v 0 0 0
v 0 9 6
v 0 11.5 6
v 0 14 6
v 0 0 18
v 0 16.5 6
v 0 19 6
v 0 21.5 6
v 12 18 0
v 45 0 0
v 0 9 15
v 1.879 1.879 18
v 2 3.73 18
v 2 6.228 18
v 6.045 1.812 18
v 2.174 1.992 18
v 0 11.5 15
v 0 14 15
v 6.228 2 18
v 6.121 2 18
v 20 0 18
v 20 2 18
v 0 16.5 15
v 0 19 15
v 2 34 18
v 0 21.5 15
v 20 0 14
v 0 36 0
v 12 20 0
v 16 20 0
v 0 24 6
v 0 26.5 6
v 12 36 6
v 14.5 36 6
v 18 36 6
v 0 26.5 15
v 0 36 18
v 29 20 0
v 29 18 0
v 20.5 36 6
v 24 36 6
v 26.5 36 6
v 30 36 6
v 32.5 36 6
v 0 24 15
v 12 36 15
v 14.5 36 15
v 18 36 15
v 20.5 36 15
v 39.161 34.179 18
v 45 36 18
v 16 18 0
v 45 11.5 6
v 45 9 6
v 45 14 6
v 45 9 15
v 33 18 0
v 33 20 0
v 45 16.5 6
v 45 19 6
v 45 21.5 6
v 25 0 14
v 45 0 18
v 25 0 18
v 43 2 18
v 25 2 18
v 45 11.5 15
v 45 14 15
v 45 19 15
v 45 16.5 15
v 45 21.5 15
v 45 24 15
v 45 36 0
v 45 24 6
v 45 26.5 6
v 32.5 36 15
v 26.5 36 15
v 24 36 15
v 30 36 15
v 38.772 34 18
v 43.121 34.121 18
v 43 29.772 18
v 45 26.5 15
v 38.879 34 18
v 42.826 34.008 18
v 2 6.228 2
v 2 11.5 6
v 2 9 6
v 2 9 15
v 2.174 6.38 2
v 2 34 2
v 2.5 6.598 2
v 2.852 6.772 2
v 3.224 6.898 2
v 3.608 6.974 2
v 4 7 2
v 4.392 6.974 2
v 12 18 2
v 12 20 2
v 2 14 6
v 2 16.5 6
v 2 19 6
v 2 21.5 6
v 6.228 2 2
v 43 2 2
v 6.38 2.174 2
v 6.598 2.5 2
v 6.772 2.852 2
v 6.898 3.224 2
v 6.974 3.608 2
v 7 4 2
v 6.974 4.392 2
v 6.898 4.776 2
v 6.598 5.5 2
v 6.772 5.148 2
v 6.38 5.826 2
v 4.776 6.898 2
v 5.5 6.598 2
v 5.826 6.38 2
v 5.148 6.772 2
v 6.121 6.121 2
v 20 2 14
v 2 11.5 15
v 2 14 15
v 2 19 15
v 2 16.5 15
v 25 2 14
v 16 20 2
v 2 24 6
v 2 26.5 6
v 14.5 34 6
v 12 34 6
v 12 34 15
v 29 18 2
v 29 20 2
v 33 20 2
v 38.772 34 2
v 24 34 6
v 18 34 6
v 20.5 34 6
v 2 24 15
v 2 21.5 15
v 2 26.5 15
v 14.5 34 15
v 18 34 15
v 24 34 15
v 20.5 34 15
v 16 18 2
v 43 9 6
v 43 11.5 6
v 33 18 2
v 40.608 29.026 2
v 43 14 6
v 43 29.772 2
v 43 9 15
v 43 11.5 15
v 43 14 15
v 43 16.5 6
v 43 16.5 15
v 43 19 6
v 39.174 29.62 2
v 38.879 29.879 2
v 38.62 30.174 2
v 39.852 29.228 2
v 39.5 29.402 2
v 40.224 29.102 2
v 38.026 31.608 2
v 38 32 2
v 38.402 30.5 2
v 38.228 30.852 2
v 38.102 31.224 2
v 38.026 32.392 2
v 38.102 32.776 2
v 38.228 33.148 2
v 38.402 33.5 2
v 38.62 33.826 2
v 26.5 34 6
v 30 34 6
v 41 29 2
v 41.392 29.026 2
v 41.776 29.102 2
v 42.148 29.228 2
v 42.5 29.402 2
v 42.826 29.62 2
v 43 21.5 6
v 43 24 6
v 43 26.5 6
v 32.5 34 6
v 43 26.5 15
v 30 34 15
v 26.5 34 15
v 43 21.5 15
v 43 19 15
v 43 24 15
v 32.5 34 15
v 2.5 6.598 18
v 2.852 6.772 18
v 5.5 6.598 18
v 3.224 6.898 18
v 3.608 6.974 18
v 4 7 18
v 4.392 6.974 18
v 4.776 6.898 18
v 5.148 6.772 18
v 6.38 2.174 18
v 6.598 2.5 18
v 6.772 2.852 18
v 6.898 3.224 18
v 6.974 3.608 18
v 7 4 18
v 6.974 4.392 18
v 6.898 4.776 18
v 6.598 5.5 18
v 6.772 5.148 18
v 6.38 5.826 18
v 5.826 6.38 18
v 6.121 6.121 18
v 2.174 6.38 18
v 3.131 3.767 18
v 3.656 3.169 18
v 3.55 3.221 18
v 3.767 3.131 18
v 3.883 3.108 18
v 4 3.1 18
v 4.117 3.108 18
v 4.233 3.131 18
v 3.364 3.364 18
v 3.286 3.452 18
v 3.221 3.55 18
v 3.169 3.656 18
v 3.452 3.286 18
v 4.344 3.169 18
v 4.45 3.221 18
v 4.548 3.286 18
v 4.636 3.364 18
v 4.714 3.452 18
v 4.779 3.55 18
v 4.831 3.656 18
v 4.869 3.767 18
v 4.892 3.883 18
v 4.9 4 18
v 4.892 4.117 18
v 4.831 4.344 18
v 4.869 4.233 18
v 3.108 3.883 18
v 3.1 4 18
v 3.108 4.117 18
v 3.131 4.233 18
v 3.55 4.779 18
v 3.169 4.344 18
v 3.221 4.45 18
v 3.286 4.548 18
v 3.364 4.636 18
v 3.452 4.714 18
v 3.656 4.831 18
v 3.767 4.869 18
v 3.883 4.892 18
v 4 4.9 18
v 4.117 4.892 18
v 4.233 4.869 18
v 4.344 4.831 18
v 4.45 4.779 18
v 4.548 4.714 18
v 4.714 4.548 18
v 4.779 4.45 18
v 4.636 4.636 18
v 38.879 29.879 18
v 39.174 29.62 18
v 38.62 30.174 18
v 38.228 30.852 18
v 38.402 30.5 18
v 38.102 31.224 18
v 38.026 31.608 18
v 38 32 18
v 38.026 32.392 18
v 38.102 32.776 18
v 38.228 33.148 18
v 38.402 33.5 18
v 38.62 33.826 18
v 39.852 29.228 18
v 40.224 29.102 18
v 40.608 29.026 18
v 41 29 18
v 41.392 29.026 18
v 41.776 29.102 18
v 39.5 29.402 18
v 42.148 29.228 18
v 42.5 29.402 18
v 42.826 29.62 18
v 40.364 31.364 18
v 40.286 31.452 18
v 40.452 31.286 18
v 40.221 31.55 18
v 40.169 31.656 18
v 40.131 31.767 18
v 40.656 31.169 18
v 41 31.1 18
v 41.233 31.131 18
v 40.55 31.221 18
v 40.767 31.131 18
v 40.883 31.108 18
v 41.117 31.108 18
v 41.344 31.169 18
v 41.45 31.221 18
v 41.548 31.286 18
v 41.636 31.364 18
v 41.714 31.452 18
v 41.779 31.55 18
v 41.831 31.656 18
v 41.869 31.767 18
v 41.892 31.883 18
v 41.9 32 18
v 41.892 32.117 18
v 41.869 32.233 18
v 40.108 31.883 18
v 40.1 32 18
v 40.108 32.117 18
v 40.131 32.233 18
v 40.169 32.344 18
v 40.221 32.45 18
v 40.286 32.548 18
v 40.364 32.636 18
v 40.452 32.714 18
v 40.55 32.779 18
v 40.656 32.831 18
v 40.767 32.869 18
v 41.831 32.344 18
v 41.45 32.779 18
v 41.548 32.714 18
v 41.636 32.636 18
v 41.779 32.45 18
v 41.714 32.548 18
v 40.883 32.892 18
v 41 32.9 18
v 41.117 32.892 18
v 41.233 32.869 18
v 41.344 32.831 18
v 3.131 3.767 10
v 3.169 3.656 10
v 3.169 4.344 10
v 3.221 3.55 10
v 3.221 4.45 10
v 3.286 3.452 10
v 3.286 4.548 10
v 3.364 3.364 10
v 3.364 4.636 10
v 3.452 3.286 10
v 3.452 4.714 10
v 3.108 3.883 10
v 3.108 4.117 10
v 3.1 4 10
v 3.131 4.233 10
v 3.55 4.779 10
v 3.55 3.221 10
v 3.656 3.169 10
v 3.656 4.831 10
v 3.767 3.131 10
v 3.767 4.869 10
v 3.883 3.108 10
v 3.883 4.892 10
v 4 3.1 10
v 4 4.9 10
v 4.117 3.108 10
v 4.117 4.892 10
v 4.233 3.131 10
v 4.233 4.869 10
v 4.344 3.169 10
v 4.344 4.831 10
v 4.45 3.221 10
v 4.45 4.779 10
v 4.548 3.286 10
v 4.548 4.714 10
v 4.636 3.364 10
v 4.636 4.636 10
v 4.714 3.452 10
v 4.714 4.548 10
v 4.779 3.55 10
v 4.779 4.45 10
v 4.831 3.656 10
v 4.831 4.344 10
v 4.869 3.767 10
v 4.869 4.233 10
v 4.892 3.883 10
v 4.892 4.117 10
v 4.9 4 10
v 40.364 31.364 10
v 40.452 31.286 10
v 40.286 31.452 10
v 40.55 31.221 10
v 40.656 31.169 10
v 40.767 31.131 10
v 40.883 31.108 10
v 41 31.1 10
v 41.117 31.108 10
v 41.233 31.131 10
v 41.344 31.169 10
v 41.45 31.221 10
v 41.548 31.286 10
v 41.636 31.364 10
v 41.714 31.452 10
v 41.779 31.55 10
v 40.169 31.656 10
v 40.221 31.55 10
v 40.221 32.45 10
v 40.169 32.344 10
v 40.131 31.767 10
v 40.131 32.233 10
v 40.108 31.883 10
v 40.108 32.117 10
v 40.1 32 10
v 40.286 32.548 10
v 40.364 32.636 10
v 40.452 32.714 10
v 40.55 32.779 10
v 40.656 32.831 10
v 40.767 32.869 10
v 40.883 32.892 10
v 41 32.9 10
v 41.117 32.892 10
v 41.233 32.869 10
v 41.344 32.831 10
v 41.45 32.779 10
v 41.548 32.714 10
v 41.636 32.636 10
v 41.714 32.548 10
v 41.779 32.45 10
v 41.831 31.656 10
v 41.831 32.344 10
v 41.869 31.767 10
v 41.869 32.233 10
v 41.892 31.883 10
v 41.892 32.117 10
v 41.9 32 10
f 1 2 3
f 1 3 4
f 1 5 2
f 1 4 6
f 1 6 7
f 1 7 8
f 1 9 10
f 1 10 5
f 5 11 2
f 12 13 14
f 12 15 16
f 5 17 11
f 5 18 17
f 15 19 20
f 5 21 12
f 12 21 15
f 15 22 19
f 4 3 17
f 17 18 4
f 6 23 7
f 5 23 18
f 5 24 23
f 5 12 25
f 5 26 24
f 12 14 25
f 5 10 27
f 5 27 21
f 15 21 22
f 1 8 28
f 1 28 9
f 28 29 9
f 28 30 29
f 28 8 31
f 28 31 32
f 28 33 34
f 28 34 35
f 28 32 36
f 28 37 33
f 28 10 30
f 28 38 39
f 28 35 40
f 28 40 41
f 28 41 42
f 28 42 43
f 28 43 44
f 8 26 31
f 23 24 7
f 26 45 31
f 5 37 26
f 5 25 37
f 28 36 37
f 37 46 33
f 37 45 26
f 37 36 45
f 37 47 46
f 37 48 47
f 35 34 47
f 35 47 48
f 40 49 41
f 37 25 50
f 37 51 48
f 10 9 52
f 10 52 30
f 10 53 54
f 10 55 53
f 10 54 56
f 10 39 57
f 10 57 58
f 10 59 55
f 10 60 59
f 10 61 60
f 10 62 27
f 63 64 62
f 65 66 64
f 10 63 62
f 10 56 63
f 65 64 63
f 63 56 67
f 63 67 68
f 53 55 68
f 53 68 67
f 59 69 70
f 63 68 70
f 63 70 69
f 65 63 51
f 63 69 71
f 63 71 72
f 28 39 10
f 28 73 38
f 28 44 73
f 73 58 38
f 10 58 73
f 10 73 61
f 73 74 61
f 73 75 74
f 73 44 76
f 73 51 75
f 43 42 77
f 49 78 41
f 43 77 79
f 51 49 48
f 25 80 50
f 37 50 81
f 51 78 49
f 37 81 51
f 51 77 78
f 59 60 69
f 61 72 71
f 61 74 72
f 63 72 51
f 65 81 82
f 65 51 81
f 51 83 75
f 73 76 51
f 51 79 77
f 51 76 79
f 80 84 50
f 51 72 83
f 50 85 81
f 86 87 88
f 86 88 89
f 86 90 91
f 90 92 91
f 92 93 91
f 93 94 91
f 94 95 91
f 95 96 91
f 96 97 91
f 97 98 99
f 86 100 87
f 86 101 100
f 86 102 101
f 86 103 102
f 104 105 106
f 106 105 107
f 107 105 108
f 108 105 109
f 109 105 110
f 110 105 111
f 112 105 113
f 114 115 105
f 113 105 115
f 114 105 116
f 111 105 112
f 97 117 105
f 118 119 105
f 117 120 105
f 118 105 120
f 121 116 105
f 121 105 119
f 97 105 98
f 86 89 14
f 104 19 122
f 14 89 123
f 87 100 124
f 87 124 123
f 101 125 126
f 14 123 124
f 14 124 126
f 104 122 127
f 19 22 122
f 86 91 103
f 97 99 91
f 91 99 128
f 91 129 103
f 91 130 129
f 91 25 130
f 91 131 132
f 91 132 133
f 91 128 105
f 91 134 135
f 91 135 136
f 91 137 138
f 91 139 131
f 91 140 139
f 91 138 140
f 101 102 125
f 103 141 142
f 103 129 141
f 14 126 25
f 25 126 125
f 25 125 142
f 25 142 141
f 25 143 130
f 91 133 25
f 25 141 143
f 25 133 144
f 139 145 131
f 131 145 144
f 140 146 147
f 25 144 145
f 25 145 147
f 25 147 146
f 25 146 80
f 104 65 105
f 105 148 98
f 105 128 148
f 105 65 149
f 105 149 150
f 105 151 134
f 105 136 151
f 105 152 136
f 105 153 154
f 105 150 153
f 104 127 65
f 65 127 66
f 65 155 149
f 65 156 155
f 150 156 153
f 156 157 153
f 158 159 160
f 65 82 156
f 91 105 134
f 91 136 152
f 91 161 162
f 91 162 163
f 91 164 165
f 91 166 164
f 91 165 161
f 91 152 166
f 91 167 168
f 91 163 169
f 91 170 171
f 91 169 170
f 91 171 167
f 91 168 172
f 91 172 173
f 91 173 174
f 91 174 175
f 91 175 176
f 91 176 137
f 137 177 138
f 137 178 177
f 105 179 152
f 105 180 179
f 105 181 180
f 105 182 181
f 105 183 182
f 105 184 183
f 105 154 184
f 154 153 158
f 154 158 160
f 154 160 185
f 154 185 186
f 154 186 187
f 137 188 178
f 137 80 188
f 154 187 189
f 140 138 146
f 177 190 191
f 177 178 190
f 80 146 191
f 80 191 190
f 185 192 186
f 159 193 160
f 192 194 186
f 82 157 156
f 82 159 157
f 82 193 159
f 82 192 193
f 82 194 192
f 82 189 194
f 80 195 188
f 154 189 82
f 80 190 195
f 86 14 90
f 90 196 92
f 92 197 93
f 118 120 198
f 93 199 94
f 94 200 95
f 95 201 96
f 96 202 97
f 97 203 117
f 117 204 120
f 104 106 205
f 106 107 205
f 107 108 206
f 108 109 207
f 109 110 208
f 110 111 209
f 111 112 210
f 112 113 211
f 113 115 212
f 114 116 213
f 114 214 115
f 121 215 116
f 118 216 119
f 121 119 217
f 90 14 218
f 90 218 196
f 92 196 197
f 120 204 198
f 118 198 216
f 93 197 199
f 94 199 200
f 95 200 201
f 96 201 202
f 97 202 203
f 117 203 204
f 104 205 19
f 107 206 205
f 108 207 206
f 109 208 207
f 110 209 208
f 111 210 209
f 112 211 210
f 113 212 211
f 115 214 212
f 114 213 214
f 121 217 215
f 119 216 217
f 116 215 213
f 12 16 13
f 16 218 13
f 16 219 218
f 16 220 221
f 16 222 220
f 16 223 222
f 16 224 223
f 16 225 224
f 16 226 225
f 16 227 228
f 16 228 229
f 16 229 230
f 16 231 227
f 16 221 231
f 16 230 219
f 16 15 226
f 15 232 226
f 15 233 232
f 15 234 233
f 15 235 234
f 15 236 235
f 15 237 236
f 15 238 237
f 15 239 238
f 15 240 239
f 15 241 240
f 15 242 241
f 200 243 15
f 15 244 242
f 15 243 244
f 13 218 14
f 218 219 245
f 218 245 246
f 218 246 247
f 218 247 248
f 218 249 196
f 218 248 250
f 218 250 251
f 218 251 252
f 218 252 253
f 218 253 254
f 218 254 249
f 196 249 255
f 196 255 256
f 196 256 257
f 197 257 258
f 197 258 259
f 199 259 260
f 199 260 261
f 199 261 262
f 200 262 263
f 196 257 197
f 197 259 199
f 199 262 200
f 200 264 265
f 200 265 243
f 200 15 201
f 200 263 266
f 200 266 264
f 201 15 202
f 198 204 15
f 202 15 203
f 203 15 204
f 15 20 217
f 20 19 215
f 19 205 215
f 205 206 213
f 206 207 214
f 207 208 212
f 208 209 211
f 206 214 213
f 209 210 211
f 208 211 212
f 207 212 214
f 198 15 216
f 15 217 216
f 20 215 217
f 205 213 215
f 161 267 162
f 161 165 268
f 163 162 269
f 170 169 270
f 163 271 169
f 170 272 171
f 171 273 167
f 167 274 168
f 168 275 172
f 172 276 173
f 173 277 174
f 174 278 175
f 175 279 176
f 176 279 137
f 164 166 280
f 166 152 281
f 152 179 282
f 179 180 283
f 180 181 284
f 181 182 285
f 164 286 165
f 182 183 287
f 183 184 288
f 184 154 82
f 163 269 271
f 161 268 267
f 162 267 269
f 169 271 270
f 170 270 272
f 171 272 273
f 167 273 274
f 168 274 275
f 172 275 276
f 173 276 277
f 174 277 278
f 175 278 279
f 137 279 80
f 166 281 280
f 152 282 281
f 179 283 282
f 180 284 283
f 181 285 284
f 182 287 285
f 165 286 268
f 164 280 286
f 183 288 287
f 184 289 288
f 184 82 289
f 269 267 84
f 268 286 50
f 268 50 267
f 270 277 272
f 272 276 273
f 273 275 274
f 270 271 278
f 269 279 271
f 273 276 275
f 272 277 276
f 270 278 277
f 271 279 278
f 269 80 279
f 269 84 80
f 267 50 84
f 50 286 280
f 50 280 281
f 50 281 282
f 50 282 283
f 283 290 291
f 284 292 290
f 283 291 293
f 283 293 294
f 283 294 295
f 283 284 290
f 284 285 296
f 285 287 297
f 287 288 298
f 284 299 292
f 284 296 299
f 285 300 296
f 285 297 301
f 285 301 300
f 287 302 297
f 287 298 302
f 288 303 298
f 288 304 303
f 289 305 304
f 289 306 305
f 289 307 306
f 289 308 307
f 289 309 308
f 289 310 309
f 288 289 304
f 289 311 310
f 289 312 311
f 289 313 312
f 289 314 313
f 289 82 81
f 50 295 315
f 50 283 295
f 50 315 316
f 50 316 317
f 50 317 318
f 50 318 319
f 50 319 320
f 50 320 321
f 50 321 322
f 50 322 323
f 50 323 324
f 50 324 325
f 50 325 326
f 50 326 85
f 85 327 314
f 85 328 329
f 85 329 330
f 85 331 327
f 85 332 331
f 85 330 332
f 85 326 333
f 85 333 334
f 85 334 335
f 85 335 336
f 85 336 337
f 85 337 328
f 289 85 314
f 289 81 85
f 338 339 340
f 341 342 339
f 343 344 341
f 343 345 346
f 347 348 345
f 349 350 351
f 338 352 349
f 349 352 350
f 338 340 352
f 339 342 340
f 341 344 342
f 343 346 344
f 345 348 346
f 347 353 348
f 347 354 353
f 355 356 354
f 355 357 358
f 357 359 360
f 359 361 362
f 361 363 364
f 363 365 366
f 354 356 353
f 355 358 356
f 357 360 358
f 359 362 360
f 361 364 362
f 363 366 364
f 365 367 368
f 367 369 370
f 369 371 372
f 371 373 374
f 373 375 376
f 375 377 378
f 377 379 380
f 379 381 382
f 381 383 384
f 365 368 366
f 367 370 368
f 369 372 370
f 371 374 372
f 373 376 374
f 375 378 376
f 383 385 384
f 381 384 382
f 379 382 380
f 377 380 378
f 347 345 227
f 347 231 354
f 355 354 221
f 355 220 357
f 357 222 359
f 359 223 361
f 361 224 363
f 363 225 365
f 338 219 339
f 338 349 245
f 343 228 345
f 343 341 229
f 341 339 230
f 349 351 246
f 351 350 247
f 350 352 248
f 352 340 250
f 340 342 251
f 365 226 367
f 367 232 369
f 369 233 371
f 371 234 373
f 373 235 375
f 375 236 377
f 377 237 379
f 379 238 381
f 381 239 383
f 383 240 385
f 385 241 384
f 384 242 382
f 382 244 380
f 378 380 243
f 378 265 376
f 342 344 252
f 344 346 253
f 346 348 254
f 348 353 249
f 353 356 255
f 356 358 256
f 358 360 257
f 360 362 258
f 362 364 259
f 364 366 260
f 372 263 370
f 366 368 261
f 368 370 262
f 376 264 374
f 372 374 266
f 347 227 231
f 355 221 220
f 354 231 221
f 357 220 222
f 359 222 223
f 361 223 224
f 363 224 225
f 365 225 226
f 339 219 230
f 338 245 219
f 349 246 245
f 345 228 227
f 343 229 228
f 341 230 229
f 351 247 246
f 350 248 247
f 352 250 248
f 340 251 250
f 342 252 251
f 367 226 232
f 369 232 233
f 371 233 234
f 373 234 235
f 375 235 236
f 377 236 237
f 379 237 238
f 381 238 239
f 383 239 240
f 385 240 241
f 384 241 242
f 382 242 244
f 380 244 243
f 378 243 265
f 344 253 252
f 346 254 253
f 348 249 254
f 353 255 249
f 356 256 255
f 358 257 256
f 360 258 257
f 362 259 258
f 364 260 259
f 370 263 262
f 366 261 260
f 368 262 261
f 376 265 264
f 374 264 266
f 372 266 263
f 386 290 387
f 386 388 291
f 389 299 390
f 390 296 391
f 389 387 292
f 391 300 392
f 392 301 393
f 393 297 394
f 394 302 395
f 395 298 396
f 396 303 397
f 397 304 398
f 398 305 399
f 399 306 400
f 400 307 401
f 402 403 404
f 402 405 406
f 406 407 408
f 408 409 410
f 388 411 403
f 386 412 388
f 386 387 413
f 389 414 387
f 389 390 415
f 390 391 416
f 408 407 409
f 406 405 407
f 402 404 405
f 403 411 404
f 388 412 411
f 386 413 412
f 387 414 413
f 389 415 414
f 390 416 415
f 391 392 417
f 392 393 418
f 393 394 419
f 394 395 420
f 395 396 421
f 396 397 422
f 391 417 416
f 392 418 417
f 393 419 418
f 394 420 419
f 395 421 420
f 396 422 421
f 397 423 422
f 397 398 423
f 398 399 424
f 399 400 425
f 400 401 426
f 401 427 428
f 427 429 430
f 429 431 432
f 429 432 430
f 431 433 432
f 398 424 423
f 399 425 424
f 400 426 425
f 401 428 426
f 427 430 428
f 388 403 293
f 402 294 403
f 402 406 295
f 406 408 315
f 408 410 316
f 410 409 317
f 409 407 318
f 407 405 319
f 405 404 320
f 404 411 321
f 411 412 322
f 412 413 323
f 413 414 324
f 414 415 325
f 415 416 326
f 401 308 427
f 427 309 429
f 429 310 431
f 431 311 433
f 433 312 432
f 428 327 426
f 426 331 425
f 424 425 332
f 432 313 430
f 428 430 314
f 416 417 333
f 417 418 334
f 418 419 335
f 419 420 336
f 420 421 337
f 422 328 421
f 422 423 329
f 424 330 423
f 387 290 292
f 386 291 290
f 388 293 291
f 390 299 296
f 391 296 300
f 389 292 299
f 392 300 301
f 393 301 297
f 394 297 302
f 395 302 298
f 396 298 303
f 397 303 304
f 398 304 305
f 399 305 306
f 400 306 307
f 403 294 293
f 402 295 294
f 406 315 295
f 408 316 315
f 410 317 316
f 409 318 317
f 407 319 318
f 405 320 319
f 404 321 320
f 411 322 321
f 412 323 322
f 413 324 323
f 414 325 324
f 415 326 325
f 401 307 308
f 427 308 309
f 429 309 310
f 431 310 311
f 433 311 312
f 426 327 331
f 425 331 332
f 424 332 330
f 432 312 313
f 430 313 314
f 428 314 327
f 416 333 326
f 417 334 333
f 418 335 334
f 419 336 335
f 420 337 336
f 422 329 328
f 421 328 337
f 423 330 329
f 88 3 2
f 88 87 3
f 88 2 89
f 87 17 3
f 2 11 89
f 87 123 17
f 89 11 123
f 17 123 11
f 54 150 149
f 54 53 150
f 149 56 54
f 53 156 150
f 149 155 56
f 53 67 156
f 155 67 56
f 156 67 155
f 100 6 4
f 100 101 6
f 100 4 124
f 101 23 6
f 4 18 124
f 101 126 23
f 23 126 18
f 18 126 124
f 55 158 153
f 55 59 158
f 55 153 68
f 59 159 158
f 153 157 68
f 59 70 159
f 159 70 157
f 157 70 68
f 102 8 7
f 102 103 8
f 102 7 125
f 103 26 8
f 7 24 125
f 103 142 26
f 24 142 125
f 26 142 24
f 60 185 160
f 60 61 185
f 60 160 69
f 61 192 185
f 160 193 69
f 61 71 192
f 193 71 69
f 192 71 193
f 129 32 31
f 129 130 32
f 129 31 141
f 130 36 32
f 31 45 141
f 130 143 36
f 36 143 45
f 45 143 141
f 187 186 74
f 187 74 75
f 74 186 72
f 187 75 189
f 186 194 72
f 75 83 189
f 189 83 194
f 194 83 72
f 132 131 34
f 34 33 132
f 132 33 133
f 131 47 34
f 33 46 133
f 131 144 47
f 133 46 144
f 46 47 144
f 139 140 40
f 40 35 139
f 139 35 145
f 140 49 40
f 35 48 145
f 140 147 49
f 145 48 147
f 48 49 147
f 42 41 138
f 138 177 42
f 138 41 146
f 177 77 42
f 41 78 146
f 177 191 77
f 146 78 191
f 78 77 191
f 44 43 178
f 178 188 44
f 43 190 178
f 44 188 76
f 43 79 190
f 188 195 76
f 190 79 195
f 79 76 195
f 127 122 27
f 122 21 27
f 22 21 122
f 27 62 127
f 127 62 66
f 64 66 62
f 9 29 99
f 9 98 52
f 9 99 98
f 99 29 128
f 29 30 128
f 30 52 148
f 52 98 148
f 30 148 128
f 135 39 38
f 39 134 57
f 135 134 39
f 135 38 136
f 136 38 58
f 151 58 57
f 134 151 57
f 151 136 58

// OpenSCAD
// Generated from parameters.json by build.py. Edit parameters.json, then rebuild.
// CSG and STL share the same source. See docs/enclosure.md. Units mm.
difference() {
union() {
difference() {
cube([45.0,36.0,18.0]);
translate([2.0, 2.0, 2.0]) { cube([41.0,32.0,20.0]); }
}
translate([4, 4, 0]) { cylinder(d=6,h=18.0,$fn=48); }
translate([41.0, 32.0, 0]) { cylinder(d=6,h=18.0,$fn=48); }
}
translate([4, 4, 10.0]) { cylinder(d=1.8,h=8,$fn=48); }
translate([41.0, 32.0, 10.0]) { cylinder(d=1.8,h=8,$fn=48); }
translate([-0.02, 9, 6]) { cube([2.04,2.5,9]); }
translate([42.98, 9, 6]) { cube([2.04,2.5,9]); }
translate([-0.02, 14, 6]) { cube([2.04,2.5,9]); }
translate([42.98, 14, 6]) { cube([2.04,2.5,9]); }
translate([-0.02, 19, 6]) { cube([2.04,2.5,9]); }
translate([42.98, 19, 6]) { cube([2.04,2.5,9]); }
translate([-0.02, 24, 6]) { cube([2.04,2.5,9]); }
translate([42.98, 24, 6]) { cube([2.04,2.5,9]); }
translate([12, 33.98, 6]) { cube([2.5,2.04,9]); }
translate([18, 33.98, 6]) { cube([2.5,2.04,9]); }
translate([24, 33.98, 6]) { cube([2.5,2.04,9]); }
translate([30, 33.98, 6]) { cube([2.5,2.04,9]); }
translate([20.0, -0.02, 14.0]) { cube([5,2.04,4]); }
translate([12, 18.0, -0.02]) { cube([4,2,2.04]); }
translate([29.0, 18.0, -0.02]) { cube([4,2,2.04]); }
}
